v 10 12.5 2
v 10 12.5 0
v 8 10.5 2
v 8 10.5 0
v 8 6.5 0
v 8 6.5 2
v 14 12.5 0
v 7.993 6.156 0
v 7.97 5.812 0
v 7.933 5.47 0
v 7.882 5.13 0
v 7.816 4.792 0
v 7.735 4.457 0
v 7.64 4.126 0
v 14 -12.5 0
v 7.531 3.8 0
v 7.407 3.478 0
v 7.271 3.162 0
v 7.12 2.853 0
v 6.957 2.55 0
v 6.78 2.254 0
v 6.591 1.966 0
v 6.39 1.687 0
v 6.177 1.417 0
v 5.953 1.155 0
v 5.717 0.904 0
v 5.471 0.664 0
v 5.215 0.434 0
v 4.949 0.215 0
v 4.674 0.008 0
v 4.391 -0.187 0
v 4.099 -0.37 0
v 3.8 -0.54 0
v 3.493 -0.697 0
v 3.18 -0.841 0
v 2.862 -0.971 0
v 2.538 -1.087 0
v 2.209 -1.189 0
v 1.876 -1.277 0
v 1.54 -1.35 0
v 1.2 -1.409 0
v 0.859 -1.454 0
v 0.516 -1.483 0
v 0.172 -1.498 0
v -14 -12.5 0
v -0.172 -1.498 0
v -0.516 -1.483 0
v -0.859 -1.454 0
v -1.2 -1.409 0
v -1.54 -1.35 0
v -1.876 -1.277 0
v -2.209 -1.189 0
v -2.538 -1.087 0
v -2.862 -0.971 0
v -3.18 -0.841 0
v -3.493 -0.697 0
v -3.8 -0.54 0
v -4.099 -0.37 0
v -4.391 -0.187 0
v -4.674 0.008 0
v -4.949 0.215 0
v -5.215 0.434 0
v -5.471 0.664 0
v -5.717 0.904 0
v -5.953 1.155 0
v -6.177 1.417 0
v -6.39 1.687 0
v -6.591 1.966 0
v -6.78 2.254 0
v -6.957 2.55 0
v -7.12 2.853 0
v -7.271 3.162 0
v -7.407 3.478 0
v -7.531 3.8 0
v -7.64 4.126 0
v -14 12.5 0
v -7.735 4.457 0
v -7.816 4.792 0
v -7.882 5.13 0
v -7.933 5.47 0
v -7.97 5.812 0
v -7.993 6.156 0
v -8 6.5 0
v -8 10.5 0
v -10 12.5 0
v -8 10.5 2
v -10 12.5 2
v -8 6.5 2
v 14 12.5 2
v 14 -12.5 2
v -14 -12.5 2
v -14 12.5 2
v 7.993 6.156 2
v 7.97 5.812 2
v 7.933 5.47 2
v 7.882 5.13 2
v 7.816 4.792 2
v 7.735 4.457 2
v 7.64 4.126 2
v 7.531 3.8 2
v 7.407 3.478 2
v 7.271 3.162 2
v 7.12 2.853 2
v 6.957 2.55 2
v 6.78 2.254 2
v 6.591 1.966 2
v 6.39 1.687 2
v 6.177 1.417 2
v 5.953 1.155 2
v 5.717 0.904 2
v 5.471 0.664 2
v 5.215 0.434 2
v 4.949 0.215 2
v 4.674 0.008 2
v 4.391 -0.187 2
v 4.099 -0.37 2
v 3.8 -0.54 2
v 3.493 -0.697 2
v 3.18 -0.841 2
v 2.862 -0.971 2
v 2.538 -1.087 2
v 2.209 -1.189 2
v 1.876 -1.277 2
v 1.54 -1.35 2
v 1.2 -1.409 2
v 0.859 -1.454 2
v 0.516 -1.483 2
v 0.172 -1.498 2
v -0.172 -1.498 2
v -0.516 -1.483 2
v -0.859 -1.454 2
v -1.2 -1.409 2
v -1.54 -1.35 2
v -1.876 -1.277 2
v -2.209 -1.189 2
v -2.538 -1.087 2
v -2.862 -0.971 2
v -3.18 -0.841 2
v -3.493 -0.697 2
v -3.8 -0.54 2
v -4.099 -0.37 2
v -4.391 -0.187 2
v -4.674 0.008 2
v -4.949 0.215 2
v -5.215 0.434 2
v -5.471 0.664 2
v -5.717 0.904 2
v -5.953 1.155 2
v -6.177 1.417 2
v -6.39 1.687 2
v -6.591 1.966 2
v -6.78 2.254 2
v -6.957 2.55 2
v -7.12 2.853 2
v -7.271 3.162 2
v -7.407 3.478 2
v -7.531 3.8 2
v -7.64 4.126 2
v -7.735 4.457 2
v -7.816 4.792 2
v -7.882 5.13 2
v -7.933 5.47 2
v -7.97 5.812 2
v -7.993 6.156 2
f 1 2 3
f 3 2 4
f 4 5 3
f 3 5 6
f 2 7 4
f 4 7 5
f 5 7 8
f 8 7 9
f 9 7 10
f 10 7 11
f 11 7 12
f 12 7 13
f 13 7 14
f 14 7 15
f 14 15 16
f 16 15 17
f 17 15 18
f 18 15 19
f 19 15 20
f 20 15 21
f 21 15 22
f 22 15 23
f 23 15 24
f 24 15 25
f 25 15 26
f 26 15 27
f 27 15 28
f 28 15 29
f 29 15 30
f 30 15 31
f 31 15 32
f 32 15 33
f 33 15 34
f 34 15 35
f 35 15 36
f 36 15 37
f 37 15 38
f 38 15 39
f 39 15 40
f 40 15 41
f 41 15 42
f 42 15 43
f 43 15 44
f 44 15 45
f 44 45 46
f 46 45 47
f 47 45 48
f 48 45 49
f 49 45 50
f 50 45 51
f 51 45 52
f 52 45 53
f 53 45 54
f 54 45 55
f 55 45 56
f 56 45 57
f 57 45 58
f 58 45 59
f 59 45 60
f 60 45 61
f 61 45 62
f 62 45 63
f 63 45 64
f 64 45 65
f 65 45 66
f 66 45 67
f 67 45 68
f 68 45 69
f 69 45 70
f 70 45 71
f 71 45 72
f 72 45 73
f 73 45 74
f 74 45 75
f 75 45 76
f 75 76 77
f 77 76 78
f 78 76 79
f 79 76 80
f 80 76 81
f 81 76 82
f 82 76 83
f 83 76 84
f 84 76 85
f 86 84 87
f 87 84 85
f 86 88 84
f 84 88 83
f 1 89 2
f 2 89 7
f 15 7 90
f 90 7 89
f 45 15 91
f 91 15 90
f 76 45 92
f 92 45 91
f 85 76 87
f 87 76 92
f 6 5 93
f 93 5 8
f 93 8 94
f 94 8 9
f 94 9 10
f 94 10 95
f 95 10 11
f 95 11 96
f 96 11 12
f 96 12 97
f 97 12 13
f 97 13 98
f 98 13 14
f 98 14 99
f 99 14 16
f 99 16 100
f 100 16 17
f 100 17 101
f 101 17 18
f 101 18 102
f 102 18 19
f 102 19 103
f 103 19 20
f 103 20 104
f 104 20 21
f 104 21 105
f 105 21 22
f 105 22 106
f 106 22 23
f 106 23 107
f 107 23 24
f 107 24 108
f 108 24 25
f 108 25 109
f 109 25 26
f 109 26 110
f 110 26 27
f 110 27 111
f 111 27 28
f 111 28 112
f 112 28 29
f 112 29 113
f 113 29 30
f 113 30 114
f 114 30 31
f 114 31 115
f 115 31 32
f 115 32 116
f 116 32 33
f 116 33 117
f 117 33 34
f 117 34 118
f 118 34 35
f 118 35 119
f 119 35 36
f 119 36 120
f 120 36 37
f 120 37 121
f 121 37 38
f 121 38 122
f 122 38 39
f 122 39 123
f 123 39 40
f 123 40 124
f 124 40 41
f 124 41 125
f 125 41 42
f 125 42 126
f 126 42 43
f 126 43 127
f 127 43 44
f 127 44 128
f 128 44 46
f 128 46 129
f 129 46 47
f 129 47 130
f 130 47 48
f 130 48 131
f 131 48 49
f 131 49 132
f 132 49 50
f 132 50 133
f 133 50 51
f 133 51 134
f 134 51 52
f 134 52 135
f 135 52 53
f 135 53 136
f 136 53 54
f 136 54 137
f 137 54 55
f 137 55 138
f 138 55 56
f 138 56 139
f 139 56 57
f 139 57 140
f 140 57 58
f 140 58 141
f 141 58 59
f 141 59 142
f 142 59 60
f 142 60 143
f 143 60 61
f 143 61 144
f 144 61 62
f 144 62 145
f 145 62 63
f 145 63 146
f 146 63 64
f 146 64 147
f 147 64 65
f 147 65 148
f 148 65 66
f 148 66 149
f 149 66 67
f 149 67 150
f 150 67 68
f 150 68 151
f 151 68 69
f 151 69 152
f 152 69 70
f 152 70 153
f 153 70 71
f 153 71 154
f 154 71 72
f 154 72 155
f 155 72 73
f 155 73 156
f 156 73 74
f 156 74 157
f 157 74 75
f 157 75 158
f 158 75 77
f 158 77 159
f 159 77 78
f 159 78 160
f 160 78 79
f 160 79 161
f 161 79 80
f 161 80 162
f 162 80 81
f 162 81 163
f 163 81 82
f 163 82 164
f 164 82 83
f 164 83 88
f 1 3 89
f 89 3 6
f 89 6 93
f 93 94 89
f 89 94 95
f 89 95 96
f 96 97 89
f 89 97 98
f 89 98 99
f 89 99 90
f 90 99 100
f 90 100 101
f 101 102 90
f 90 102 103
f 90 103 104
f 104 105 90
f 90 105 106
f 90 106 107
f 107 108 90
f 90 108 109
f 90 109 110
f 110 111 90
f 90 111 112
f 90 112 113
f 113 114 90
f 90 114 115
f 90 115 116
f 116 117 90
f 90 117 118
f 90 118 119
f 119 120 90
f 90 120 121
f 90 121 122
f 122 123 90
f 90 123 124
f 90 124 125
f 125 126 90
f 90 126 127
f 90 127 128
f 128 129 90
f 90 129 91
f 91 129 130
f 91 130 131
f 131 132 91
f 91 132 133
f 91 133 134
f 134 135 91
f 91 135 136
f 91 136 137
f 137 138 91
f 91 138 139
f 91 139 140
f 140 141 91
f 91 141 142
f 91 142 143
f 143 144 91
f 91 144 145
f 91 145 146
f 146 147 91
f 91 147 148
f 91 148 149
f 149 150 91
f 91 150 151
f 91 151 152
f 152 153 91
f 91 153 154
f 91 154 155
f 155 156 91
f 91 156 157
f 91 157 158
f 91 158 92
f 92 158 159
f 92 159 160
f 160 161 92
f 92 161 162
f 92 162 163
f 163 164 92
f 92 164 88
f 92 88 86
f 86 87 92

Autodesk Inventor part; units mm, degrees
ref_plane "YZ Plane" through (0, 0, 0) normal (1, 0, 0) x (0, 1, 0)
ref_plane "XZ Plane" through (0, 0, 0) normal (0, 1, 0) x (-1, 0, 0)
ref_plane "XY Plane" through (0, 0, 0) normal (0, 0, 1) x (1, 0, 0)
sketch "Sketch1" plane through (0, 0, 0) normal (0, 0, 1) x (1, 0, 0)
  line L0 (-14, 12.5) -> (14, 12.5)
  line L1 (14, 12.5) -> (14, -12.5)
  line L2 (14, -12.5) -> (-14, -12.5)
  line L3 (-14, -12.5) -> (-14, 12.5)
  circle A0 centre (0, 6.5) radius 8
  line L4 (-8, 12.5) -> (-8, 6.5)
  line L5 (-8, 1.1823) -> (-8, 1.3302)
  line L6 (8, 12.5) -> (8, 6.5)
  point P0 (0, 0)
  point P1 (-14, 0)
  point P2 (0, 12.5)
  point P3 (5.2915, 12.5)
  point P4 (-5.2915, 12.5)
  dimension "d0" = 28
  dimension "d1" = 25
  dimension "d2" = 16
  dimension "d4" = 11
extrude "Extrusion1" add sketch "Sketch1" along normal blind 2 contours L0 L4 A0 L6 L1 L2 L3
chamfer "Chamfer2" distance 2 angle 45 2 edges at (-8, 12.5, 1) (8, 12.5, 1)
properties part number "0008-10-058"
